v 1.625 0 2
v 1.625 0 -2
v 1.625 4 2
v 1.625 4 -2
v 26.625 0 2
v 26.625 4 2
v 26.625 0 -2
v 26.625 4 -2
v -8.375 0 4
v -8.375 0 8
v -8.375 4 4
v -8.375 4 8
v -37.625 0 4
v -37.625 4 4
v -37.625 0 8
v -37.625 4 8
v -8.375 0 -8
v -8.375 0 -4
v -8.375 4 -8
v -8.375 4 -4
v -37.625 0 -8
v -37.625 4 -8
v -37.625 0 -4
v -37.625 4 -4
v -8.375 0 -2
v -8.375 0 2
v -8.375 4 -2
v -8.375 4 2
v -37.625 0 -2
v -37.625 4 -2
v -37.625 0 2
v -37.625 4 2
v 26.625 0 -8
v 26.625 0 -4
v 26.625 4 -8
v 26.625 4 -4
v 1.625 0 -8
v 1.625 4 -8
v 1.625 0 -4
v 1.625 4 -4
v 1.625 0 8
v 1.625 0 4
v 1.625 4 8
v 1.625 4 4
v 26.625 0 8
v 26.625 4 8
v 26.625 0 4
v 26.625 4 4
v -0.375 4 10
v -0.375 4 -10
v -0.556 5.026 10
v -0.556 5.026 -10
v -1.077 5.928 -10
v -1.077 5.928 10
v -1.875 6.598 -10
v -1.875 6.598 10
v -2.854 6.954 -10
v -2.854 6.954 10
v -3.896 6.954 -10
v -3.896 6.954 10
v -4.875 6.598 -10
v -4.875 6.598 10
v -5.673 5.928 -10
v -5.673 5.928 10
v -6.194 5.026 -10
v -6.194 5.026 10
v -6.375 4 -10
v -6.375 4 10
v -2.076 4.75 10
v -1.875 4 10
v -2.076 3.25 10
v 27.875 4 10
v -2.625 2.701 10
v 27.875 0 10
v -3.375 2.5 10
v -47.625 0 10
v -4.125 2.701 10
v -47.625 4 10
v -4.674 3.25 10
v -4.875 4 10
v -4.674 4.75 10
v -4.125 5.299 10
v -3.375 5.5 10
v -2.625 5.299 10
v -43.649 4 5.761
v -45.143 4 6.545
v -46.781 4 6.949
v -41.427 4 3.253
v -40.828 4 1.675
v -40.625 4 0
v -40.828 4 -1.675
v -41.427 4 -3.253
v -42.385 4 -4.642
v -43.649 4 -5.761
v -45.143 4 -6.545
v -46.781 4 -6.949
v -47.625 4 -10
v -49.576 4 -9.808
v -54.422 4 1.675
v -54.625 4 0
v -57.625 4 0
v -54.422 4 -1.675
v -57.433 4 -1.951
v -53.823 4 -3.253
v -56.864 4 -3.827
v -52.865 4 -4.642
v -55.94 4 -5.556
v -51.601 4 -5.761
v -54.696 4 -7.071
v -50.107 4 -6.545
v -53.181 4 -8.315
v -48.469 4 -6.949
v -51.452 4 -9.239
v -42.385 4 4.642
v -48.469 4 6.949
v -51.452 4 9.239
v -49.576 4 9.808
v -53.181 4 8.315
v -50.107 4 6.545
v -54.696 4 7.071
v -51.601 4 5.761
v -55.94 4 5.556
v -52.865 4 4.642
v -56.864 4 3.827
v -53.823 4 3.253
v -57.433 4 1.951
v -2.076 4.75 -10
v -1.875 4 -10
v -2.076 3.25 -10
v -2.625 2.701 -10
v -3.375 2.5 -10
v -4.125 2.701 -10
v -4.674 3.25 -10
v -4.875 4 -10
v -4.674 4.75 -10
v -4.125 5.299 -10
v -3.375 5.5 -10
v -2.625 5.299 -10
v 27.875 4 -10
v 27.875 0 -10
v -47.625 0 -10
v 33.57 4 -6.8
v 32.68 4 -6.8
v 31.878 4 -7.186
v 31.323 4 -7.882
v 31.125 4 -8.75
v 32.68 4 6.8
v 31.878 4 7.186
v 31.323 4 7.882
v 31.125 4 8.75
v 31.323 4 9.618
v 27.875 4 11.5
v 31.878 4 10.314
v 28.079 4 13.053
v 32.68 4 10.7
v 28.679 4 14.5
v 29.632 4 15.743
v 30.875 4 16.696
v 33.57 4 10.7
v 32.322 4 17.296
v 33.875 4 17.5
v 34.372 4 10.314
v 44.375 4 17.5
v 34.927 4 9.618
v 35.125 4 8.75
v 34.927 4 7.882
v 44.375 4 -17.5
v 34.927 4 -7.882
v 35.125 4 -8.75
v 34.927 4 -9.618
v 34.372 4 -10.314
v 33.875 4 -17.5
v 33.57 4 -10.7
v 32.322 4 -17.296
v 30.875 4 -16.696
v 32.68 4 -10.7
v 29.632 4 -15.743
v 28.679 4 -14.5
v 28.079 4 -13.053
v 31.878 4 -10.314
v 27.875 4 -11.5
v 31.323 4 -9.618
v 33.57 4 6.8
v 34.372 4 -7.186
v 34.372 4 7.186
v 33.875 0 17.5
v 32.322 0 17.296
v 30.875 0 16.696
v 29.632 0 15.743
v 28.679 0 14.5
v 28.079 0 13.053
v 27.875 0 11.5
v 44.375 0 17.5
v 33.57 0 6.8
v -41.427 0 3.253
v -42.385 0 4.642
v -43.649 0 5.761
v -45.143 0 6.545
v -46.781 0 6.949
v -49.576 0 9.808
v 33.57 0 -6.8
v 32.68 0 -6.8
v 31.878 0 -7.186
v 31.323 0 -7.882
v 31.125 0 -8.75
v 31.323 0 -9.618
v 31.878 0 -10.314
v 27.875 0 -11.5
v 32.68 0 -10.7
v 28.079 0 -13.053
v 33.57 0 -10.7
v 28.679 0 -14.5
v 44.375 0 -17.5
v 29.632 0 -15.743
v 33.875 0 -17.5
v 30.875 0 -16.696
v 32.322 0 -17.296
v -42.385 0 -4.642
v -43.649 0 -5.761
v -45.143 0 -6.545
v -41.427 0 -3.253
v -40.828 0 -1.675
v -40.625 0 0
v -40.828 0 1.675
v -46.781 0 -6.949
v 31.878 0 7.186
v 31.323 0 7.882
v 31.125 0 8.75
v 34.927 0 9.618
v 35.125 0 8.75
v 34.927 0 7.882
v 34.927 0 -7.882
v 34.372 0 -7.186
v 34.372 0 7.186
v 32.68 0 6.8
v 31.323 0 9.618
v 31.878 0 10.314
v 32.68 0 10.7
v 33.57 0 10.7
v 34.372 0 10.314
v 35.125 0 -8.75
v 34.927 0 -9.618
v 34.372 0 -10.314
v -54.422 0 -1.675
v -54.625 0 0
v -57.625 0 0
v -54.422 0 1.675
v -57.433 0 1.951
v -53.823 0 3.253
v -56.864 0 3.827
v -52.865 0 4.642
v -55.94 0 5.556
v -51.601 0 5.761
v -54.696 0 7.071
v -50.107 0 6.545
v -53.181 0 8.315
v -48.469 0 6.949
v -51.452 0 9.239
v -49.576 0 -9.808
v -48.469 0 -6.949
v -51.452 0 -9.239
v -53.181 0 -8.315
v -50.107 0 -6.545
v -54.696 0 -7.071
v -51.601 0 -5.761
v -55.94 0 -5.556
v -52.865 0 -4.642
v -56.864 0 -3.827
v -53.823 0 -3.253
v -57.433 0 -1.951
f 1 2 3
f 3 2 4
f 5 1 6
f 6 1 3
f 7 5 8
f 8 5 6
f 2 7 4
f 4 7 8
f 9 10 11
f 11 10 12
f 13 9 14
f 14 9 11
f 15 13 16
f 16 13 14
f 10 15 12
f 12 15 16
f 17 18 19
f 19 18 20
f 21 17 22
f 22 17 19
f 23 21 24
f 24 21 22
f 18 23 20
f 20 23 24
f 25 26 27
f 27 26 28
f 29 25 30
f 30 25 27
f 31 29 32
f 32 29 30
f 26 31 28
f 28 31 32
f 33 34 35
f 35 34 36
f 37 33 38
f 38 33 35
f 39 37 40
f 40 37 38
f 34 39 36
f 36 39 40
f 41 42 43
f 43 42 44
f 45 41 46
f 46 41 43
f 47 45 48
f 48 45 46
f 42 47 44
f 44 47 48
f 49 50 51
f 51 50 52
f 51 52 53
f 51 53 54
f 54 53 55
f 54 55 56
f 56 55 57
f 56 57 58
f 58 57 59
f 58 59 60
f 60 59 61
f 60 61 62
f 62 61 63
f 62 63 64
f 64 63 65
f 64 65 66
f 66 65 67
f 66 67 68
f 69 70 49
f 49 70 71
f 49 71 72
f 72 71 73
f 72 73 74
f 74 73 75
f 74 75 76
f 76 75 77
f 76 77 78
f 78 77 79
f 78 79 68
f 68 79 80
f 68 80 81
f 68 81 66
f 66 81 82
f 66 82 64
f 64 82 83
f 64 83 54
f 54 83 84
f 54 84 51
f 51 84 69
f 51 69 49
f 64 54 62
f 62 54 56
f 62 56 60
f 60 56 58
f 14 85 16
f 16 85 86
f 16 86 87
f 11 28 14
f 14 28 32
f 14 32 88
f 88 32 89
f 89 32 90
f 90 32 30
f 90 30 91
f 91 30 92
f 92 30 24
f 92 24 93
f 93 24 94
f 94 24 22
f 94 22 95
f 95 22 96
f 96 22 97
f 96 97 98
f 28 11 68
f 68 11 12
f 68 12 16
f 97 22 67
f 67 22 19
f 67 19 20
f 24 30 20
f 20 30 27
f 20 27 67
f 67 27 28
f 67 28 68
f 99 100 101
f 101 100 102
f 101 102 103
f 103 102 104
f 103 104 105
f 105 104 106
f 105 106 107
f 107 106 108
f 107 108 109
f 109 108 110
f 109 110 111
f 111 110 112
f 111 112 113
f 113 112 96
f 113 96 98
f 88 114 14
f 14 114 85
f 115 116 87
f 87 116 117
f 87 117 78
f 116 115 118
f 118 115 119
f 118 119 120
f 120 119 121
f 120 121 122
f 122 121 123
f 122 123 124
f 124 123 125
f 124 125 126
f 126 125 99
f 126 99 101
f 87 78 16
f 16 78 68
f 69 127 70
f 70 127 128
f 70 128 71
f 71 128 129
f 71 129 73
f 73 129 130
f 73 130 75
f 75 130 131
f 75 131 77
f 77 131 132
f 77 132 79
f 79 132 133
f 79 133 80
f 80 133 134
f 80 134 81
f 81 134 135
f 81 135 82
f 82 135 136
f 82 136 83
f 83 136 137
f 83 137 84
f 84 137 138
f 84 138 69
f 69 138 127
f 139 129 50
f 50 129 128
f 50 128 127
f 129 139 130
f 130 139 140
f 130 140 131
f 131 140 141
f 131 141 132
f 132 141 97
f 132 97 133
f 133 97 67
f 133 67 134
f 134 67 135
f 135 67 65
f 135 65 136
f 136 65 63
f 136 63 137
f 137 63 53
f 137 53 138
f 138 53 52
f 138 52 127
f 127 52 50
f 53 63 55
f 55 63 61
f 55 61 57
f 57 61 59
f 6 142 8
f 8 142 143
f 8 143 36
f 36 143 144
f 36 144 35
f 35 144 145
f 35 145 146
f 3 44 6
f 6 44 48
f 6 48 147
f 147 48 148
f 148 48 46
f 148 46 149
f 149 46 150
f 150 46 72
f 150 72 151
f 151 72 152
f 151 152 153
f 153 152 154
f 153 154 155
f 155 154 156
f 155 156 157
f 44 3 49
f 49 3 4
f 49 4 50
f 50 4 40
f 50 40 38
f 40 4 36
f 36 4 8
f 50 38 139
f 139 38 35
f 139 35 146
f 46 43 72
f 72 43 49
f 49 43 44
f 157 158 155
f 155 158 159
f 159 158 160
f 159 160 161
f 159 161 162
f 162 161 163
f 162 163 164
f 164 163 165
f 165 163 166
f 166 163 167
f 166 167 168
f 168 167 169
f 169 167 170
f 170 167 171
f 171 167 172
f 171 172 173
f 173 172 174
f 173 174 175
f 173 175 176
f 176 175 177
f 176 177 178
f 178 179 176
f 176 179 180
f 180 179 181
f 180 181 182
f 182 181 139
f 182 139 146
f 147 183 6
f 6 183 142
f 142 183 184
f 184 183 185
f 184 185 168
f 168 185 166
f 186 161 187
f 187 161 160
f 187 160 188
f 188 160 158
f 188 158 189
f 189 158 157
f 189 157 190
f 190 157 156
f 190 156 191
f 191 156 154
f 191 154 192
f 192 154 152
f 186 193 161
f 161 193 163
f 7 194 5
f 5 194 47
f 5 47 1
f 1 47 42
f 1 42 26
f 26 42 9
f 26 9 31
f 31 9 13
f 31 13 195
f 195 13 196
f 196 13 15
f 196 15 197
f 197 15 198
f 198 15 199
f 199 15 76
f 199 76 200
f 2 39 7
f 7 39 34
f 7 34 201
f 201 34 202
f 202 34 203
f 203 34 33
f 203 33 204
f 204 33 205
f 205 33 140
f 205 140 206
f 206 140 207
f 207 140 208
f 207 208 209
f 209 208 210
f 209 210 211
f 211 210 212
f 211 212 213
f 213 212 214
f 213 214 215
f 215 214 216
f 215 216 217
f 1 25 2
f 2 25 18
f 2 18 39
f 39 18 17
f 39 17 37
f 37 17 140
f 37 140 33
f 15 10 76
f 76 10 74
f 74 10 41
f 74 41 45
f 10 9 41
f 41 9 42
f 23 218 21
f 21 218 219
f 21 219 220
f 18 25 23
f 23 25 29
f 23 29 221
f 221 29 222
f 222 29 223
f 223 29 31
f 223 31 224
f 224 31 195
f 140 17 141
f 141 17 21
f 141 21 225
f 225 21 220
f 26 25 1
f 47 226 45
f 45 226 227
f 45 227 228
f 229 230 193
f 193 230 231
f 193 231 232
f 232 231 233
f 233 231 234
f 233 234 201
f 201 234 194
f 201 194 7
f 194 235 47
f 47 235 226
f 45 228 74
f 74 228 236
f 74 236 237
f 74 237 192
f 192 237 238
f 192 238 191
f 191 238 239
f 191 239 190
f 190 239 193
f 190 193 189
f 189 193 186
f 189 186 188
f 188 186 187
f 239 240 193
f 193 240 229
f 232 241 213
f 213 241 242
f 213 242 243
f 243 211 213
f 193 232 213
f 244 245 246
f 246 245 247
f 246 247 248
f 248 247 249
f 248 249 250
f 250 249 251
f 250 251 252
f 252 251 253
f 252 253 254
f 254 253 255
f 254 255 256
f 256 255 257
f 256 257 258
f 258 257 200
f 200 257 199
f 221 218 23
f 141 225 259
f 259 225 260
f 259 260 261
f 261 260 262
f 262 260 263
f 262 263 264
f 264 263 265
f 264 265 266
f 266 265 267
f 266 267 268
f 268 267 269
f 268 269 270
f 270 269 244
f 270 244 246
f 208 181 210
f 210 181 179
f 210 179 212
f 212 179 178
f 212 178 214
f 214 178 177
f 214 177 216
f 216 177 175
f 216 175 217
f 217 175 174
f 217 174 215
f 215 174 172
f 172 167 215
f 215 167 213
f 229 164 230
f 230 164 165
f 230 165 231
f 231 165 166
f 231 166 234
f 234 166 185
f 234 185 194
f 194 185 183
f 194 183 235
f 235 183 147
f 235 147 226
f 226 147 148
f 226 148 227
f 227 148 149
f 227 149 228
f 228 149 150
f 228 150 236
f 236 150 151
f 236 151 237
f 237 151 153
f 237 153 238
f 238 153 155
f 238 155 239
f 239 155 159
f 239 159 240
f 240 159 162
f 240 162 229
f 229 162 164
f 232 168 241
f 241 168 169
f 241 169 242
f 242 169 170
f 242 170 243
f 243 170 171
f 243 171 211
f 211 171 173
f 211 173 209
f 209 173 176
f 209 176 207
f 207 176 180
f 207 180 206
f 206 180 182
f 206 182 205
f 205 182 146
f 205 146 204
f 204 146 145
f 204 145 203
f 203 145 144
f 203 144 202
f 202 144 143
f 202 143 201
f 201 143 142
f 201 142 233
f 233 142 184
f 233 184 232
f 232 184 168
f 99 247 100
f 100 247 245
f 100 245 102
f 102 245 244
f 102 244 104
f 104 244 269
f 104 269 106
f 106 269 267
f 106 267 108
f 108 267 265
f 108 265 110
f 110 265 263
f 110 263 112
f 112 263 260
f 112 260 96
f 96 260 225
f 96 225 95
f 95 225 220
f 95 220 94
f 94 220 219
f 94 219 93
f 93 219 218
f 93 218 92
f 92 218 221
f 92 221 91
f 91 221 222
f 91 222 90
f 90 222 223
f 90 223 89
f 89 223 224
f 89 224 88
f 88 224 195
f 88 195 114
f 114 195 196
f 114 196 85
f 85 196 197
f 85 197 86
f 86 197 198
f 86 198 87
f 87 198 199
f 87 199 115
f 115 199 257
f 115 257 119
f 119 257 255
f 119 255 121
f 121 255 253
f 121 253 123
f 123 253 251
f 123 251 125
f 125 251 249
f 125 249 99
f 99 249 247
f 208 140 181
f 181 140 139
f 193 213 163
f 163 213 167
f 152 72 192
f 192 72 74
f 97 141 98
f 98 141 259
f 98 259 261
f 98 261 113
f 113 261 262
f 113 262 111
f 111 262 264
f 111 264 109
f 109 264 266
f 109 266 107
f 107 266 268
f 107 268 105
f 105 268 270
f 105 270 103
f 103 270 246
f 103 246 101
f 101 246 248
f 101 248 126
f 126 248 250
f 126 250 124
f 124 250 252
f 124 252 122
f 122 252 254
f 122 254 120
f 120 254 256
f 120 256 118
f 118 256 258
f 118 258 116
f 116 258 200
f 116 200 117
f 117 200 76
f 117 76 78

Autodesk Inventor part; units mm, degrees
ref_plane "YZ Plane" through (0, 0, 0) normal (1, 0, 0) x (0, 1, 0)
ref_plane "XZ Plane" through (0, 0, 0) normal (0, 1, 0) x (-1, 0, 0)
ref_plane "XY Plane" through (0, 0, 0) normal (0, 0, 1) x (1, 0, 0)
sketch "Main Sketch" plane through (0, 0, 0) normal (0, 1, 0) x (-1, 0, 0)
  line L0 (-44.375, -9.3176) -> (-44.375, 9.3176)
  line L1 (-44.375, 9.3176) -> (47.625, -10) construction
  line L2 (47.625, 10) -> (-44.375, -9.3176) construction
  circle A0 centre (47.625, 0) radius 7
  arc A1 (47.625, -10) -> (47.625, 10) centre (47.625, 0) ccw
  line L3 (-27.875, 17.5) -> (-44.375, 17.5)
  line L4 (-44.375, 17.5) -> (-44.375, -17.5)
  line L5 (-44.375, -17.5) -> (-27.875, -17.5)
  line L6 (-27.875, 17.5) -> (-44.375, -17.5) construction
  line L7 (-44.375, 17.5) -> (-27.875, -17.5) construction
  line L8 (47.625, -10) -> (-27.875, -10)
  line L9 (-27.875, -17.5) -> (-27.875, -10)
  line L10 (-27.875, 10) -> (-27.875, 17.5)
  line L11 (-27.875, 10) -> (47.625, 10)
  point P0 (0, 0)
  point P1 (-36.125, 0)
  dimension "d3" = 14
  dimension "d4" = 92
  dimension "d13" = 16.5
  dimension "d14" = 35
  dimension "d15" = 0
  dimension "d18" = 20
extrude "Main Extrusion" add sketch "Main Sketch" along normal blind 4
sketch "Screw Holes Sketch" plane through (0, 4, 0) normal (0, 1, 0) x (1, 0, 0)
  circle A0 centre (33.125, -8.75) radius 2
  line L0 (44.375, 17.5) -> (27.875, 17.5) projected
  line L1 (27.875, -17.5) -> (44.375, -17.5) projected
  line L2 (22.2664, 0) -> (52.7891, 0)
  line L3 (38.375, -27.0398) -> (38.375, 30.2346) construction
  line L4 (44.375, -17.5) -> (44.375, 17.5) projected
  line L5 (27.875, -10) -> (27.875, -17.5) projected
  circle A1 centre (33.125, 8.75) radius 2
  line L6 (38.375, 27.0398) -> (38.375, -30.2346) construction
  point P0 (0, 0)
  dimension "d21" = 4
  dimension "d22" = 35
  dimension "d23" = 6
  dimension "d24" = 5.25
  dimension "d25" = 5.25
  dimension "d26" = 10.5
  dimension "d27" = 8.75
  dimension "d28" = 17.5
extrude "Screw Holes Cut" cut sketch "Screw Holes Sketch" against normal through all
fillet "Smoooooooooooooooooth" radius 6 2 edges at (27.875, 2, -17.5) (27.875, 2, 17.5)
sketch "Side Axel Hole Sketch" plane through (-47.625, 0, 10) normal (0, 0, 1) x (1, 0, 0)
  line L0 (75.5, 4) -> (75.5, 0) projected
  line L1 (0, 0) -> (0, 4) projected
  line L2 (44.25, -12.0383) -> (44.25, 22.7681) construction
  line L3 (75.5, 0) -> (0, 0) projected
  line L4 (0, 4) -> (75.5, 4) projected
  circle A0 centre (44.25, 4) radius 1.5
  point P0 (47.625, 0)
  dimension "d32" = 75.5
  dimension "d33" = 44.25
  dimension "d34" = 31.25
  dimension "d35" = 4
  dimension "d41" = 3
extrude "Side Axel Hole Cut" cut sketch "Side Axel Hole Sketch" against normal blind 20 contours A0 L4 | L4 A0
sketch "Side Hole Extension Sketch" plane through (-47.625, 0, 10) normal (0, 0, 1) x (1, 0, 0)
  arc A0 (42.75, 4) -> (45.75, 4) centre (44.25, 4) ccw projected
  circle A1 centre (44.25, 4) radius 3
  circle A2 centre (44.25, 4) radius 1.5
  point P0 (47.625, 0)
  dimension "d44" = 6
extrude "Side Hole Extrusion" add sketch "Side Hole Extension Sketch" against normal blind 20
sketch "Body Holes Sketch" plane through (0, 4, 0) normal (0, 1, 0) x (1, 0, 0)
  line L0 (-37.625, 8) -> (-8.375, 8)
  line L1 (-8.375, 8) -> (-8.375, 4)
  line L2 (-8.375, 4) -> (-37.625, 4)
  line L3 (-37.625, 4) -> (-37.625, 8)
  line L4 (-6.375, -10) -> (-6.375, 10) projected
  circle A0 centre (-47.625, 0) radius 7 projected
  line L5 (-47.625, 7) -> (-47.625, -13.5384) construction
  line L6 (-6.375, 10) -> (-47.625, 10) projected
  line L7 (-47.625, 1) -> (-47.625, -19.5384) construction
  line L8 (-37.625, 2) -> (-8.375, 2)
  line L9 (-8.375, 2) -> (-8.375, -2)
  line L10 (-8.375, -2) -> (-37.625, -2)
  line L11 (-37.625, -2) -> (-37.625, 2)
  line L12 (-47.625, -5) -> (-47.625, -25.5384) construction
  line L13 (-37.625, -4) -> (-8.375, -4)
  line L14 (-8.375, -4) -> (-8.375, -8)
  line L15 (-8.375, -8) -> (-37.625, -8)
  line L16 (-37.625, -8) -> (-37.625, -4)
  line L17 (1.625, 8) -> (26.625, 8)
  line L18 (26.625, 8) -> (26.625, 4)
  line L19 (26.625, 4) -> (1.625, 4)
  line L20 (1.625, 4) -> (1.625, 8)
  line L21 (-0.375, 10) -> (-0.375, -10) projected
  line L22 (27.875, 10) -> (-0.375, 10) projected
  line L23 (1.625, -2) -> (1.625, 2)
  line L24 (26.625, -2) -> (1.625, -2)
  line L25 (26.625, 2) -> (26.625, -2)
  line L26 (1.625, 2) -> (26.625, 2)
  line L27 (1.625, -8) -> (1.625, -4)
  line L28 (26.625, -8) -> (1.625, -8)
  line L29 (26.625, -4) -> (26.625, -8)
  line L30 (1.625, -4) -> (26.625, -4)
  point P0 (0, 0)
  dimension "d77" = 4
  dimension "d78" = 2
  dimension "d79" = 10
  dimension "d80" = 2
  dimension "d83" = 6
  dimension "d88" = 2
  dimension "d89" = 2
  dimension "d90" = 4
  dimension "d91" = 25
  dimension "d94" = 6
extrude "Swiss-ified" cut sketch "Body Holes Sketch" against normal through all contours L0 L1 L2 L3 | L8 L9 L10 L11 | L13 L14 L15 L16 | L17 L18 L19 L20 | L23 L26 L25 L24 | L27 L30 L29 L28
properties part number "Side V4"
